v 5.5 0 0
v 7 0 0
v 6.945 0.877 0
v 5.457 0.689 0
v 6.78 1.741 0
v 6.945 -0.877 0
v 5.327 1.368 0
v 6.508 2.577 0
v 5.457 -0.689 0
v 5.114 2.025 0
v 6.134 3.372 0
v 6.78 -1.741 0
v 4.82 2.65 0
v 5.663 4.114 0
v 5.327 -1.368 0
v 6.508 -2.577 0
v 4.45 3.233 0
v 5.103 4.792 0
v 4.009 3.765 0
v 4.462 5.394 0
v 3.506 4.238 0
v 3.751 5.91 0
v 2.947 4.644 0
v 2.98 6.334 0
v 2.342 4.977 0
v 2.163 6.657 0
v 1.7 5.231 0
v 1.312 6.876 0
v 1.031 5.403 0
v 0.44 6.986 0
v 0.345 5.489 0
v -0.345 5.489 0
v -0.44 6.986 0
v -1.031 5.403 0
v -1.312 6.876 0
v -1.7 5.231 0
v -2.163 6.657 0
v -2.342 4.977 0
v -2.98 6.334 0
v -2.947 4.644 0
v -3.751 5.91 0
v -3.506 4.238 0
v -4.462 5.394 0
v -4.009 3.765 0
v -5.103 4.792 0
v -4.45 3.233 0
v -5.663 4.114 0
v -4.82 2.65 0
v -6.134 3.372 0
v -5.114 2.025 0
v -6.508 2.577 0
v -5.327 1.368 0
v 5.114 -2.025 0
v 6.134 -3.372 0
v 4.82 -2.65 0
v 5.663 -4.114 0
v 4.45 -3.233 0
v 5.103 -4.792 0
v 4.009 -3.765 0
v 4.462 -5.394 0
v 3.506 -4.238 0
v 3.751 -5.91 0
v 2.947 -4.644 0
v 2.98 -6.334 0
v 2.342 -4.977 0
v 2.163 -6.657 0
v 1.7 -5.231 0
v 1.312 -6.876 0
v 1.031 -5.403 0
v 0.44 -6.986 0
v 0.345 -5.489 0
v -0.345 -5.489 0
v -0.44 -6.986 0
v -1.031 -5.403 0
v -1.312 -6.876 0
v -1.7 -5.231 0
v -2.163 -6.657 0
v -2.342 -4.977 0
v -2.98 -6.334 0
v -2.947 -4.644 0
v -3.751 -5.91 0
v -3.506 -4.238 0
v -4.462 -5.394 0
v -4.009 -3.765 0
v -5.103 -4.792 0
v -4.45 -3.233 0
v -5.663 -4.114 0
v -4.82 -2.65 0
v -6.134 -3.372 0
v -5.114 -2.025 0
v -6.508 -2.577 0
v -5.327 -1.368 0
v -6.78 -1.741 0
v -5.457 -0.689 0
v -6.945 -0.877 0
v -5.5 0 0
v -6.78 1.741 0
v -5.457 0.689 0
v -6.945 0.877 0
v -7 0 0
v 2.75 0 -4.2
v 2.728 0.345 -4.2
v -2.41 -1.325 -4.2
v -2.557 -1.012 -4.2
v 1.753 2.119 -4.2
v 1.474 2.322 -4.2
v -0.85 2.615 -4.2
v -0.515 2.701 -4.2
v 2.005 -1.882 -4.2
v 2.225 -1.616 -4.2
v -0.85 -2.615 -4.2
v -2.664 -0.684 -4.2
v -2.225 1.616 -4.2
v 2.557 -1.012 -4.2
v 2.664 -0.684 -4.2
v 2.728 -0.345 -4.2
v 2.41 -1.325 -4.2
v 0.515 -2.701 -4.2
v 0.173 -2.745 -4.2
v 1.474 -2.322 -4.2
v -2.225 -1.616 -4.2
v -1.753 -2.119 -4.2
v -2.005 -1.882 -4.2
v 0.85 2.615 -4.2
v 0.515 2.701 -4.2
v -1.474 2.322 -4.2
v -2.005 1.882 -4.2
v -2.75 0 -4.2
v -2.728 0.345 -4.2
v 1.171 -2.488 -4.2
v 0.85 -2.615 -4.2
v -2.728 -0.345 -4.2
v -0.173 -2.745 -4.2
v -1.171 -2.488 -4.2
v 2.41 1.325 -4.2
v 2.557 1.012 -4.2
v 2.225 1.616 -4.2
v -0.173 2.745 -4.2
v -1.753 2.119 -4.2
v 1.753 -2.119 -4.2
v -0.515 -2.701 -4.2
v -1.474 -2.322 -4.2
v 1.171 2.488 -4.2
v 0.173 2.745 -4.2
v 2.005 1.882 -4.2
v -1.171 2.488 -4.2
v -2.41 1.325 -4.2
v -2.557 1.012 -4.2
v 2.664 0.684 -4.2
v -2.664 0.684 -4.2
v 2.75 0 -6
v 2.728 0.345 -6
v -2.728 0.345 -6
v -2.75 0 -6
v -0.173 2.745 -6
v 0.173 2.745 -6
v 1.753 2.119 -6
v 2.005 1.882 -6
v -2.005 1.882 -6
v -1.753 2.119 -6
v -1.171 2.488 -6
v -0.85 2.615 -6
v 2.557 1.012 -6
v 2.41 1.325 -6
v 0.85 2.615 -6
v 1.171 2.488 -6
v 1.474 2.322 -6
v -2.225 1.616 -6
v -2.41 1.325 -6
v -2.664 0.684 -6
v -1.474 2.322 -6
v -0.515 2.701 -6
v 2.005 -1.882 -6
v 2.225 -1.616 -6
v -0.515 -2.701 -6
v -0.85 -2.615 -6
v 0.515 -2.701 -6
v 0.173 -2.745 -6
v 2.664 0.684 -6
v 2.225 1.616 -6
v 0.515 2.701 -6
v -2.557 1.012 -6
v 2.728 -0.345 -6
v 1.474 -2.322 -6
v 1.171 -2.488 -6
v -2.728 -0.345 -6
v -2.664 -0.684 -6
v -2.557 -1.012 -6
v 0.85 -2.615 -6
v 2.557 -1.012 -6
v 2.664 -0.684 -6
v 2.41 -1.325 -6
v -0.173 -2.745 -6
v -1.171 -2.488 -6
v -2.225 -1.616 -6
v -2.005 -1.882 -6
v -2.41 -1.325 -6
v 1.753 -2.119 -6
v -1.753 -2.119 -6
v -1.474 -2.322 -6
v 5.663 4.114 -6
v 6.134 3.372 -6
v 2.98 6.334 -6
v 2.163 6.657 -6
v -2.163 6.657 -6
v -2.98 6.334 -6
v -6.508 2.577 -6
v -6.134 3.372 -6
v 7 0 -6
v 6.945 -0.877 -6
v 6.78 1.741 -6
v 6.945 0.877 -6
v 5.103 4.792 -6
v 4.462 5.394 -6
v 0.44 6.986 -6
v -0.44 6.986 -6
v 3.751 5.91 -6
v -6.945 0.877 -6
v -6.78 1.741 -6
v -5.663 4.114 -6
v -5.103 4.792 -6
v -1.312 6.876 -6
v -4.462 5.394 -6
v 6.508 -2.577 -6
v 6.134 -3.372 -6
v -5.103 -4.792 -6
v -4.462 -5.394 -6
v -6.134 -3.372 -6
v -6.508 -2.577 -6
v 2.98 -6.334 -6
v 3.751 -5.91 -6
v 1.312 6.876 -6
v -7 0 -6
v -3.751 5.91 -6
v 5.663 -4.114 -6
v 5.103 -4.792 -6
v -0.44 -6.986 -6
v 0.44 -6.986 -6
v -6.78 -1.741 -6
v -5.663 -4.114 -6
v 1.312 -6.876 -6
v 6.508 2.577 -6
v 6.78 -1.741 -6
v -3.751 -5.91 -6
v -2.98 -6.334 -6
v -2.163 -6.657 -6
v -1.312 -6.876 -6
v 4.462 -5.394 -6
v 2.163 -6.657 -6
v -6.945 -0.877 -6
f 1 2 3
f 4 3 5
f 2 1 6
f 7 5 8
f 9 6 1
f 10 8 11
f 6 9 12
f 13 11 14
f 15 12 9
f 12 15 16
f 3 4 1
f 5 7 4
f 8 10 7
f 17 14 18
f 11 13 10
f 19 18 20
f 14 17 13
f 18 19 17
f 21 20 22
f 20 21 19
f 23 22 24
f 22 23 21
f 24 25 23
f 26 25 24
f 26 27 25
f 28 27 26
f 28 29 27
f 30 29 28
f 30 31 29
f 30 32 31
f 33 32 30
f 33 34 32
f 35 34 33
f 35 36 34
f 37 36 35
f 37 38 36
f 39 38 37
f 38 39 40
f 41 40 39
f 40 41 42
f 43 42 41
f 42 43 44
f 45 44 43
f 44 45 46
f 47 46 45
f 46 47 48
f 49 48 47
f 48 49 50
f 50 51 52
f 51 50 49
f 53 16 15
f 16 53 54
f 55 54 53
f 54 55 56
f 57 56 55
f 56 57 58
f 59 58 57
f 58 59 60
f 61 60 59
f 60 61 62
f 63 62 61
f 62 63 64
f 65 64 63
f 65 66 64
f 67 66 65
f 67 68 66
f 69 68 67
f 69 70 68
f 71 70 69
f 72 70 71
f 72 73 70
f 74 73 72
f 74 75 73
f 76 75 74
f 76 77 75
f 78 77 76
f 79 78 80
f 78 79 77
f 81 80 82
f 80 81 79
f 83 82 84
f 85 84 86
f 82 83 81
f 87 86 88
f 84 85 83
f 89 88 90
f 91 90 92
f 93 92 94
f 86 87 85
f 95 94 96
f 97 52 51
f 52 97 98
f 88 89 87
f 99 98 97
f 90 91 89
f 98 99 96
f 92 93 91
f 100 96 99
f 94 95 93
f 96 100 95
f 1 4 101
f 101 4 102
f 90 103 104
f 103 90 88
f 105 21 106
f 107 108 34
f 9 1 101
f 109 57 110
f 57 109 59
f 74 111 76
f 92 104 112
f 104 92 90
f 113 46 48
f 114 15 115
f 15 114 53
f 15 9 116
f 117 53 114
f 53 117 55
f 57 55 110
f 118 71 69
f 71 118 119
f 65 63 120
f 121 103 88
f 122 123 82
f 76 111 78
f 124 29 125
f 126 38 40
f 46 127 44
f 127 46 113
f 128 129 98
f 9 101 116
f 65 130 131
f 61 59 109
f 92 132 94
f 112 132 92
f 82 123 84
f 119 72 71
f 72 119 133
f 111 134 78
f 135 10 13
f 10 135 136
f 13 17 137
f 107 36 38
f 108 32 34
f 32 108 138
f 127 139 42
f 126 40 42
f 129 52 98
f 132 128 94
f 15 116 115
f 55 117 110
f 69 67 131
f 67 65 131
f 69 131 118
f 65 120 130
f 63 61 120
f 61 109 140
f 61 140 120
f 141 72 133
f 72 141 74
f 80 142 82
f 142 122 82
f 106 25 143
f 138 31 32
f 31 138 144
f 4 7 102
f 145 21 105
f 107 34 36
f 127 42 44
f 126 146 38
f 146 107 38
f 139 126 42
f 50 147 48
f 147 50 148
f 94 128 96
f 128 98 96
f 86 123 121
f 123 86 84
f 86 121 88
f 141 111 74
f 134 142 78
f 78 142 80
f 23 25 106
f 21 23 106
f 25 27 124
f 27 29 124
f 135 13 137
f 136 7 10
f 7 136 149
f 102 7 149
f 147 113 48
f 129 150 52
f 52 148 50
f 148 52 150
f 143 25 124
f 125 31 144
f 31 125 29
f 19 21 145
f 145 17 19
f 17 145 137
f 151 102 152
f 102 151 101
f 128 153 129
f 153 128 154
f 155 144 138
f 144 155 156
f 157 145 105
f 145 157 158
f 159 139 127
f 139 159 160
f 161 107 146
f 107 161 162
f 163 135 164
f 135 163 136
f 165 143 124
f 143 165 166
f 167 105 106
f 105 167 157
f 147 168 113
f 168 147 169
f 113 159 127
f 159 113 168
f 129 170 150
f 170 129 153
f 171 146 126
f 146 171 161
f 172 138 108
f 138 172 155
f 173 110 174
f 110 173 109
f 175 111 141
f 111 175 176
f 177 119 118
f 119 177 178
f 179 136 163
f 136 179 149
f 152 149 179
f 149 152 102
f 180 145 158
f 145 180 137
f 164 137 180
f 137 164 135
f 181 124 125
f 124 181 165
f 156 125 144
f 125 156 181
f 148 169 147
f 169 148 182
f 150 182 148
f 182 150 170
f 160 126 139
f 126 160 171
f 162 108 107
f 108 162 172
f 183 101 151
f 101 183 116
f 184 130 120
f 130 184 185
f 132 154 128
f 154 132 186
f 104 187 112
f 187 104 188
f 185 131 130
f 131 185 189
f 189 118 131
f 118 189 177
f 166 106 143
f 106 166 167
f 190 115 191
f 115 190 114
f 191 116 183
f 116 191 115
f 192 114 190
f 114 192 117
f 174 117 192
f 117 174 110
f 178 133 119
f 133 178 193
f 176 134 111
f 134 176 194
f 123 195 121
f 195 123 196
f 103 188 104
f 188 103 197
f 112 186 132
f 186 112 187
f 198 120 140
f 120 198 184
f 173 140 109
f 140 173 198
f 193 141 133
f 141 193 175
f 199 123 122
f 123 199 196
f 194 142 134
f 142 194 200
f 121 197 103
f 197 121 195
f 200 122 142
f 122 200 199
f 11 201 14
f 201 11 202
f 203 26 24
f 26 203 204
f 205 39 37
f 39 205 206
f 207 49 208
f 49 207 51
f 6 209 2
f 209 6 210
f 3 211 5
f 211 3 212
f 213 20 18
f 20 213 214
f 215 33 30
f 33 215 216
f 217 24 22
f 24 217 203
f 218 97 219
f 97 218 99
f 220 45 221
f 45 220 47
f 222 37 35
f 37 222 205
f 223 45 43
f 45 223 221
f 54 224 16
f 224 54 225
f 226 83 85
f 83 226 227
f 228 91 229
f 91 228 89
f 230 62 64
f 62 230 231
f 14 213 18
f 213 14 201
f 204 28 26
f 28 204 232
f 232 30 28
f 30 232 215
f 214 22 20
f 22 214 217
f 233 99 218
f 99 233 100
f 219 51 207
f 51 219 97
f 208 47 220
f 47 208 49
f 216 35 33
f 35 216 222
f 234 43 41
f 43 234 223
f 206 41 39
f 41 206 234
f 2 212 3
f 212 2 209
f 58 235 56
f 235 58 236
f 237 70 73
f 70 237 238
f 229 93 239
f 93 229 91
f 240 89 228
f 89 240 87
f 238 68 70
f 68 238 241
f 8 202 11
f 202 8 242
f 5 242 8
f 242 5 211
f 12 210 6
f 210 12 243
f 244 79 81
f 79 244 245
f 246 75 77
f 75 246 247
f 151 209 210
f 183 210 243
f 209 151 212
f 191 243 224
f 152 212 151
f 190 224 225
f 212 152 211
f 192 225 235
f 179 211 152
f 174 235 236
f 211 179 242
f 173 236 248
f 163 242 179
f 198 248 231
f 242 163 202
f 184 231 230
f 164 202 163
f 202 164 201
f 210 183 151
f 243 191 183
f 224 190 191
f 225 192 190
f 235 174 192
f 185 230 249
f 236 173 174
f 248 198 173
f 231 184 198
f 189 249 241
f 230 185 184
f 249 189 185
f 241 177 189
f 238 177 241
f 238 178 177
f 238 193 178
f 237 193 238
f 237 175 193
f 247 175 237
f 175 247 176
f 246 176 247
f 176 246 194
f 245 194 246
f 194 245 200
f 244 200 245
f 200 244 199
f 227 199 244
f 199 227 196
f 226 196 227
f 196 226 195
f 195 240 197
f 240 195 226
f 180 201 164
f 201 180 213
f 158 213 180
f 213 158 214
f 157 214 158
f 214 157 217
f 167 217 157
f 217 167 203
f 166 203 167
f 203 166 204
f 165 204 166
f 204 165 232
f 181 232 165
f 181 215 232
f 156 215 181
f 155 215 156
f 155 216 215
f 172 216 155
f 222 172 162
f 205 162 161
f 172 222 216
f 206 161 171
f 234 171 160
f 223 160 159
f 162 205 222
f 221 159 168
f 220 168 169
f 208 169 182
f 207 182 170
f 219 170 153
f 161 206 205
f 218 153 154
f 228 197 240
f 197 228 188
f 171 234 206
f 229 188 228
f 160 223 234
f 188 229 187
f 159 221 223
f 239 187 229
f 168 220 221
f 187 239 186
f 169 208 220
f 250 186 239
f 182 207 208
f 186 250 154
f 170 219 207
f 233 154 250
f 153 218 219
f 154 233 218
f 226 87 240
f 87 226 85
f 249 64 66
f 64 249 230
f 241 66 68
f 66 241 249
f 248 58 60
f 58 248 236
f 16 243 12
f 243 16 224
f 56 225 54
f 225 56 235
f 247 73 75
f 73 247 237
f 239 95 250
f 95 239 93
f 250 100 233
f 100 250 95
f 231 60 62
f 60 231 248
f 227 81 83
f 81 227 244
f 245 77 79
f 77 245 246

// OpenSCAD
$fn = 50;


difference() {
	union() {
		translate(v = [0, 0, -6.0000000000]) {
			cylinder(h = 6, r = 7.0000000000);
		}
	}
	union() {
		translate(v = [0, 0, 0]) {
			rotate(a = [0, 0, 0]) {
				difference() {
					union() {
						translate(v = [0, 0, -9.0000000000]) {
							cylinder(h = 9, r = 2.2500000000);
						}
						translate(v = [0, 0, -4.2000000000]) {
							cylinder(h = 4.2000000000, r1 = 2.7500000000, r2 = 5.5000000000);
						}
						translate(v = [0, 0, -9.0000000000]) {
							cylinder(h = 9, r = 2.7500000000);
						}
						translate(v = [0, 0, -9.0000000000]) {
							cylinder(h = 9, r = 2.2500000000);
						}
					}
					union();
				}
			}
		}
	}
}
